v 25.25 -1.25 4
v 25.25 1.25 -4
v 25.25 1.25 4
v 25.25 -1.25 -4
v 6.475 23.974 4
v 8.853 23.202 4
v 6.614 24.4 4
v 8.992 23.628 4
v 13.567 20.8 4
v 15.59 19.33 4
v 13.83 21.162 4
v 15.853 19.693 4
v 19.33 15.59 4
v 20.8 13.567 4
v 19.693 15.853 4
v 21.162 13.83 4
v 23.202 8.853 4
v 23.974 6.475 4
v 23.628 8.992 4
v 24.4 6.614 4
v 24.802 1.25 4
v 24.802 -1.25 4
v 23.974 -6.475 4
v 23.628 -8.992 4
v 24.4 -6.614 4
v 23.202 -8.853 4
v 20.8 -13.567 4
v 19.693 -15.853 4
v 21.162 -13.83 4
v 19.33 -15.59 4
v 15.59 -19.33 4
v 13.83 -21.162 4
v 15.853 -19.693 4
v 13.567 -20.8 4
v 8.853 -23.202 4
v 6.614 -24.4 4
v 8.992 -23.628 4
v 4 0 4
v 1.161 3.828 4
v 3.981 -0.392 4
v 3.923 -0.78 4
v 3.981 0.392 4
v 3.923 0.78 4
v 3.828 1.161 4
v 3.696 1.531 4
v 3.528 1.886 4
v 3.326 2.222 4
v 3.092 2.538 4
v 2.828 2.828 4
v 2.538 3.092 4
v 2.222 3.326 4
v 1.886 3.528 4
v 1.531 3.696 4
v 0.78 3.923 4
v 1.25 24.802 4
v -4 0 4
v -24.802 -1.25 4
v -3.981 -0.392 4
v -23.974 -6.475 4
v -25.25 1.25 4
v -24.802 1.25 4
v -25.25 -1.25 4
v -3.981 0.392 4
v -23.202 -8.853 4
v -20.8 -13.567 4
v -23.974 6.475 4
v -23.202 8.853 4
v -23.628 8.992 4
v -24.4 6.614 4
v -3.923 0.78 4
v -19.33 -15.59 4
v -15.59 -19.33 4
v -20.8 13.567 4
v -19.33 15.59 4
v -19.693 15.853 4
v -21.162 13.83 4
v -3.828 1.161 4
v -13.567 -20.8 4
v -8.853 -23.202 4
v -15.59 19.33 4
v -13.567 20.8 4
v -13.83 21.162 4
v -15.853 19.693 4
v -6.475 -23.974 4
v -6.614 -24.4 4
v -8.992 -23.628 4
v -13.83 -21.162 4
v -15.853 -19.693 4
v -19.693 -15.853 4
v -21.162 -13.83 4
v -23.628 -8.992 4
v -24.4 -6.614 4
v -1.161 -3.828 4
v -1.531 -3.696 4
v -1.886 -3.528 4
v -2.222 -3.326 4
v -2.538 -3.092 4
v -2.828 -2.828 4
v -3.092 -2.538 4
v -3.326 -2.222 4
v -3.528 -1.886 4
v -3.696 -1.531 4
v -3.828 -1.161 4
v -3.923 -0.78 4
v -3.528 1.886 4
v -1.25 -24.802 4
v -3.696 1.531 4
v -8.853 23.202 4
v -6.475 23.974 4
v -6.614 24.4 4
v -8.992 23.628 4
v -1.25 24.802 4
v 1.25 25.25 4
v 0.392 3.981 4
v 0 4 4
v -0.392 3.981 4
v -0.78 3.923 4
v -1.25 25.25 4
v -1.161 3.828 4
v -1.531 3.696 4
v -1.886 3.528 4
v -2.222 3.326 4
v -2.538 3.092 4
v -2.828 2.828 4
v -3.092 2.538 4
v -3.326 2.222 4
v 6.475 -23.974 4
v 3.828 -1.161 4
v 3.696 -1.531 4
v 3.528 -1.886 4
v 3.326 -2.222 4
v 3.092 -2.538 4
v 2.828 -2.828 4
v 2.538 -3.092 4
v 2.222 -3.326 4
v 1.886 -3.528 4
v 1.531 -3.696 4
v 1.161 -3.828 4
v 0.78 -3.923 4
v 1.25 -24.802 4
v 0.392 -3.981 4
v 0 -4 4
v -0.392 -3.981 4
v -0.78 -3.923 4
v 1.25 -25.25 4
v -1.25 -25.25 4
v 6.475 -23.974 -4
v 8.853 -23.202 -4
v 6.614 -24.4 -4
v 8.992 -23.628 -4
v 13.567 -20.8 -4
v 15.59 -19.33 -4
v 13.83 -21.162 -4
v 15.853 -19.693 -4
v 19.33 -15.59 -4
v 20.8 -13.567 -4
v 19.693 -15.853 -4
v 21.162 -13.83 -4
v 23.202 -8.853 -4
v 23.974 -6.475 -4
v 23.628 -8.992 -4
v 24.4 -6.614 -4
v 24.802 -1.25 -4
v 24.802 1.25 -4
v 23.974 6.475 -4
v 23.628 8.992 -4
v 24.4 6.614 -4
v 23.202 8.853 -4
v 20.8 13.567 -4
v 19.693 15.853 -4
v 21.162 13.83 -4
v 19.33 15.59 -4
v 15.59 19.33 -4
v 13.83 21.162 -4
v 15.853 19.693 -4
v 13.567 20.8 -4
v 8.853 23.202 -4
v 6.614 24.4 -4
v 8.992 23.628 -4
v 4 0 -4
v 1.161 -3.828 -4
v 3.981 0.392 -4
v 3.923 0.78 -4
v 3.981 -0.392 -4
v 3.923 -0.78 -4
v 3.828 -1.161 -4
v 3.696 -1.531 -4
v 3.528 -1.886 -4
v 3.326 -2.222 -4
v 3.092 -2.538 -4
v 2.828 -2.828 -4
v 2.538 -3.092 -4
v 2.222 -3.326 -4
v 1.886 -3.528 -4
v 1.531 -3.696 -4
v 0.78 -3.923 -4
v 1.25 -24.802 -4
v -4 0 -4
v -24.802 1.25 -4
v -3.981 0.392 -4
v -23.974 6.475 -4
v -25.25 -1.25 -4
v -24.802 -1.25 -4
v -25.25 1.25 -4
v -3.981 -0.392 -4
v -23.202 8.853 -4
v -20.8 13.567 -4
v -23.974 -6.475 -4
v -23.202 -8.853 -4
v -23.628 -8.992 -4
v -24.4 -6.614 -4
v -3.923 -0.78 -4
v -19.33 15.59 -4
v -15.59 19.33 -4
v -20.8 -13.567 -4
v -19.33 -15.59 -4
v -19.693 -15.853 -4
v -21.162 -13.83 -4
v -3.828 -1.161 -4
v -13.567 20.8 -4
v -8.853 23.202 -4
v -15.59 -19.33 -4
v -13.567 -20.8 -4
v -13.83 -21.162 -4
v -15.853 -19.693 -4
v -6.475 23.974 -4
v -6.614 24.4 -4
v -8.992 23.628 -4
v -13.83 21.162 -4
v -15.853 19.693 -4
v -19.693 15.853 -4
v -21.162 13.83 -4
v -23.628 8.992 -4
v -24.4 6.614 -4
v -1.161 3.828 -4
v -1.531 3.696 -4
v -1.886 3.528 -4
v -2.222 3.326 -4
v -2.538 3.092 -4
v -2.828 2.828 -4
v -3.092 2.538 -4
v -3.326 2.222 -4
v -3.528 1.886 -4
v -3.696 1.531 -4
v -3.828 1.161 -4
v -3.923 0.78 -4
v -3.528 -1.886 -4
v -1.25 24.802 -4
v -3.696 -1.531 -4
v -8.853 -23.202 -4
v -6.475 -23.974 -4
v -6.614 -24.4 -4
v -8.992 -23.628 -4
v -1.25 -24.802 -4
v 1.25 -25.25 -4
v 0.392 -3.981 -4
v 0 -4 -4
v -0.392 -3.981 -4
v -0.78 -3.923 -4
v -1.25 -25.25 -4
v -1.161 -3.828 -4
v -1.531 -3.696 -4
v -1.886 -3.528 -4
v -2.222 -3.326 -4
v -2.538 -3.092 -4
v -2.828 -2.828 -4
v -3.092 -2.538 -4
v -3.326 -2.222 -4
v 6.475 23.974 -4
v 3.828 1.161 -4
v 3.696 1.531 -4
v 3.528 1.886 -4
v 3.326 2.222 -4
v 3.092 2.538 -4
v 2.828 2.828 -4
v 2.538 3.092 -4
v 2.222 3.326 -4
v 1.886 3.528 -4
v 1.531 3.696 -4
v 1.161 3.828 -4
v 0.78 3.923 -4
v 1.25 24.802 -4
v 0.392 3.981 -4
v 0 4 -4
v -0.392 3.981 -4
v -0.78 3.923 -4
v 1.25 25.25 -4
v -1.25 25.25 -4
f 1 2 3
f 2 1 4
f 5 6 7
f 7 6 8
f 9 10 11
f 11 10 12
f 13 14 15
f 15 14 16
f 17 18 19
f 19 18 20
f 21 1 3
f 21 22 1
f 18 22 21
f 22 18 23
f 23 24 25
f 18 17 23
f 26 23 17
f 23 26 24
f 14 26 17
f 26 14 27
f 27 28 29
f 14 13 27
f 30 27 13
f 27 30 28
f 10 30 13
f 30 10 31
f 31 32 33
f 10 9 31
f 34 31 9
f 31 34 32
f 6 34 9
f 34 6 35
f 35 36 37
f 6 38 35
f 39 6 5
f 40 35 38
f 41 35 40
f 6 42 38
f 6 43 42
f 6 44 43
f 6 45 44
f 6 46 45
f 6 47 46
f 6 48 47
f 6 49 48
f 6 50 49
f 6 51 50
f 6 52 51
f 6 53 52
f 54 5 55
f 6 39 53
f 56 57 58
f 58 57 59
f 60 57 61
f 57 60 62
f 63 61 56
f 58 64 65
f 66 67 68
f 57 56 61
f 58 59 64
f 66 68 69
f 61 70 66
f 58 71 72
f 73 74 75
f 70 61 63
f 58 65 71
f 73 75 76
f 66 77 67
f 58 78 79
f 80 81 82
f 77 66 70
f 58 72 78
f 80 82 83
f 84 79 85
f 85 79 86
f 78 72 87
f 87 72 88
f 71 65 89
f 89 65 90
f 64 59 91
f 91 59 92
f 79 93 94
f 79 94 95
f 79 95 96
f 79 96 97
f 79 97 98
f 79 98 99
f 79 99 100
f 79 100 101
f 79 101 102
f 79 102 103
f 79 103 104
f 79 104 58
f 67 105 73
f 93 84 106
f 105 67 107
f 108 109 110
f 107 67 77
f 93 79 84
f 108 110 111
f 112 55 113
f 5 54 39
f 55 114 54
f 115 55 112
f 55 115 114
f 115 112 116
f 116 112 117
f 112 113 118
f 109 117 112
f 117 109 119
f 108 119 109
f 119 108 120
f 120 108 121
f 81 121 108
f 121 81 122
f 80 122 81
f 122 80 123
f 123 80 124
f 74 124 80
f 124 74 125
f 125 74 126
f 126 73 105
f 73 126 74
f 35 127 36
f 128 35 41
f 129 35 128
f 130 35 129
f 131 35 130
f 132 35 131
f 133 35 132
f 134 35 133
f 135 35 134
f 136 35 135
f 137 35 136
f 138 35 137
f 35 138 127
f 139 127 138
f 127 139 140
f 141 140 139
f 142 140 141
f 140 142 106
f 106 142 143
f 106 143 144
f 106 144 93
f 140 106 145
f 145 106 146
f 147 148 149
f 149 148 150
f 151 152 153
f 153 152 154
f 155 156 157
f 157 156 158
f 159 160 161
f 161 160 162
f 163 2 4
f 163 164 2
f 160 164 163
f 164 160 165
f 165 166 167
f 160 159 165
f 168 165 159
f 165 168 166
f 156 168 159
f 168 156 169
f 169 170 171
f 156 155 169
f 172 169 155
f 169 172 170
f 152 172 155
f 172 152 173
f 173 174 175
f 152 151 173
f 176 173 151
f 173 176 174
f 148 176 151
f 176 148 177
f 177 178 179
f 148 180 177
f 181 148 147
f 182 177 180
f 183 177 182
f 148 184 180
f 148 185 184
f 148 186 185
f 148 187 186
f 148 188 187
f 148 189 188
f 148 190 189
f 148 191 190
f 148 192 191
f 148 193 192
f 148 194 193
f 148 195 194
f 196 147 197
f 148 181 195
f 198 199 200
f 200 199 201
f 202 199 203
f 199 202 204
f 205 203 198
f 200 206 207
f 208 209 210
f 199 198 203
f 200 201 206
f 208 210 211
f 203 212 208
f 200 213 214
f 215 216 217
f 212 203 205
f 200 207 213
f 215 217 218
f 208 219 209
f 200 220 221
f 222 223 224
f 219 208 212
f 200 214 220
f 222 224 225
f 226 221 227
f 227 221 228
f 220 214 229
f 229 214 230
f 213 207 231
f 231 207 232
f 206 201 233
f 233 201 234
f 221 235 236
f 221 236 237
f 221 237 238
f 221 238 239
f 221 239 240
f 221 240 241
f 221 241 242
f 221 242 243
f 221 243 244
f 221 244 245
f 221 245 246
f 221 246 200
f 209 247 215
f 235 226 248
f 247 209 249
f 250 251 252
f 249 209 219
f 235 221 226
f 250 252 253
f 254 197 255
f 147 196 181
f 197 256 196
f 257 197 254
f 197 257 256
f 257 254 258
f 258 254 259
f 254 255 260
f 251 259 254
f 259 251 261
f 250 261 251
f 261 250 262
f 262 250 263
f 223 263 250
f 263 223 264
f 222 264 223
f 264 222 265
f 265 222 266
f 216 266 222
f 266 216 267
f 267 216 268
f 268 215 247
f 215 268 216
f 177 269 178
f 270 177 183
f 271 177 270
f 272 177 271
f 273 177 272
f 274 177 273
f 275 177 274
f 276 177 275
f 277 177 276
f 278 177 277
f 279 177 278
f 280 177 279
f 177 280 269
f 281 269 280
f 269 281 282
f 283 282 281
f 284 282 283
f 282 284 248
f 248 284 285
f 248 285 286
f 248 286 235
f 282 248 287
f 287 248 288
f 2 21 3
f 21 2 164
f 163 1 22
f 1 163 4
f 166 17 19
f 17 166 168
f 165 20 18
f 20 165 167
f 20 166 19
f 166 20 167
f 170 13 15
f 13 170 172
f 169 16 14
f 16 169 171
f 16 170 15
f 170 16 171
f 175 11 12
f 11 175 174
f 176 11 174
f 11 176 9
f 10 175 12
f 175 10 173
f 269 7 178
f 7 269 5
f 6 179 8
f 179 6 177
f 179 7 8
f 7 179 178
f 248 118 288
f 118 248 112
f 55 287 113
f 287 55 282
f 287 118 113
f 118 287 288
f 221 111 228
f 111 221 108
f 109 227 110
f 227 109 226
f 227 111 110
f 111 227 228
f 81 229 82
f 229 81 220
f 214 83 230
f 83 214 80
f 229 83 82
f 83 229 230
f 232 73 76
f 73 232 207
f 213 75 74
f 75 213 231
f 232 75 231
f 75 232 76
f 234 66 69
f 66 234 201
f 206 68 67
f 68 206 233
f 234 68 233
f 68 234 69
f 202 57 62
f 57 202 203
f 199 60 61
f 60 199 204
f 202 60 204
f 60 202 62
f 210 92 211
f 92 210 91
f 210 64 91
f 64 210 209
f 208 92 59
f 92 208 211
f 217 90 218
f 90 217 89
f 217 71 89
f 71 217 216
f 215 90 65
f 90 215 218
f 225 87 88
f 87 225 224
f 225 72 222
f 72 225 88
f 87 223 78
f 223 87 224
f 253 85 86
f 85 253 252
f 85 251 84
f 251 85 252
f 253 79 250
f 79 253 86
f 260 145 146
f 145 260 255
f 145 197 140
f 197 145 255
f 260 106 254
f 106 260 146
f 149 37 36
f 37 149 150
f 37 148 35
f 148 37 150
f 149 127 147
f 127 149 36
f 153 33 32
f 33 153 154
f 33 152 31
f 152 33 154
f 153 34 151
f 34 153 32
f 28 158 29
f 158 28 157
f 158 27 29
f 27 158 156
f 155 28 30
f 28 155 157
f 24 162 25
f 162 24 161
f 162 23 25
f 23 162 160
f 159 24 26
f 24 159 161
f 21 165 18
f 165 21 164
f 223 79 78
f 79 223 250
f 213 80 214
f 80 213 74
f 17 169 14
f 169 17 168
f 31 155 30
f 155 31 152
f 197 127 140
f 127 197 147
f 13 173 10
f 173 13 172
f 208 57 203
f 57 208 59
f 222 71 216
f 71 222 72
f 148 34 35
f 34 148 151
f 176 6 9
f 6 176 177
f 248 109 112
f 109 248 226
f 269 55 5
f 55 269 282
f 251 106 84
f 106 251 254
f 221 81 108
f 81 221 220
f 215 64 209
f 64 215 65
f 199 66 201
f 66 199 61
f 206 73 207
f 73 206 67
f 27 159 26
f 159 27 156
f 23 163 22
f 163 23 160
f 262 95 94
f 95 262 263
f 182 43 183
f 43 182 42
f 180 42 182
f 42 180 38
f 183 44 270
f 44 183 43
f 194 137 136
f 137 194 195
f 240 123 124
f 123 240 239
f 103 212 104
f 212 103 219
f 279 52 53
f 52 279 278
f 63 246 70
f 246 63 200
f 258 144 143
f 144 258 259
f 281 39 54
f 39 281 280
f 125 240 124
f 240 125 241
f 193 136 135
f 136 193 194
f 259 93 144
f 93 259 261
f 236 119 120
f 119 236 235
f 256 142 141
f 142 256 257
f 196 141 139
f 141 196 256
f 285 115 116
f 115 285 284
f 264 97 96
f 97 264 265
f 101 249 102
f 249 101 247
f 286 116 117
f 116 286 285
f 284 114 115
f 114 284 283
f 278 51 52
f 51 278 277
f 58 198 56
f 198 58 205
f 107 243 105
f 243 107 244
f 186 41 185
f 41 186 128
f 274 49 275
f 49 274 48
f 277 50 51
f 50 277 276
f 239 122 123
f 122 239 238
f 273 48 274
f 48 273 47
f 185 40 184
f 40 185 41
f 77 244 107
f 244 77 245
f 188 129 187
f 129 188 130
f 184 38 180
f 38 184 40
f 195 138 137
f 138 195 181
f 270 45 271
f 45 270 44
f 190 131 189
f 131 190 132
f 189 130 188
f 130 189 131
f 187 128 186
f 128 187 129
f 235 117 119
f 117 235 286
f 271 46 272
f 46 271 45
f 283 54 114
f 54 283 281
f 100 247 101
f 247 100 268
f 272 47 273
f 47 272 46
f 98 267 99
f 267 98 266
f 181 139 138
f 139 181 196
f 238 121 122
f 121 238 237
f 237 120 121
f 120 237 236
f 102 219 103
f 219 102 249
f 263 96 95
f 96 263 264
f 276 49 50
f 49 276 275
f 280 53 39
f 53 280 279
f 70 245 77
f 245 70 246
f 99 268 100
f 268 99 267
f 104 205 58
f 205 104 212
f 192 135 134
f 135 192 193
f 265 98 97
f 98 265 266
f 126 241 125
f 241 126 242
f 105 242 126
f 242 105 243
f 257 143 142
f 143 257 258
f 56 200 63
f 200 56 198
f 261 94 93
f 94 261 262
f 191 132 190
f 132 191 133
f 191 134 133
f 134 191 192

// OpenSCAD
// Generated by AgentSCAD
// Part Family: spur_gear
// Generated at: 2026-04-23T20:18:30.389Z

teeth = 20;
outer_diameter = 50;
bore_diameter = 8;
thickness = 8;
pressure_angle = 20;

module spur_gear(teeth, outer_diameter, bore_diameter, thickness, pressure_angle) {
  tooth_module = outer_diameter / teeth;
  pitch_diameter = outer_diameter - 2 * tooth_module;
  tooth_depth = tooth_module * 2.2;

  difference() {
    union() {
      cylinder(h=thickness, d=outer_diameter, $fn=teeth, center=true);
      for (i = [0:teeth-1]) {
        rotate([0, 0, i * 360 / teeth])
          translate([pitch_diameter/2, 0, 0])
            cube([tooth_depth, tooth_module, thickness], center=true);
      }
    }
    cylinder(h=thickness+2, d=bore_diameter, $fn=64, center=true);
  }
}

spur_gear(teeth, outer_diameter, bore_diameter, thickness, pressure_angle);
